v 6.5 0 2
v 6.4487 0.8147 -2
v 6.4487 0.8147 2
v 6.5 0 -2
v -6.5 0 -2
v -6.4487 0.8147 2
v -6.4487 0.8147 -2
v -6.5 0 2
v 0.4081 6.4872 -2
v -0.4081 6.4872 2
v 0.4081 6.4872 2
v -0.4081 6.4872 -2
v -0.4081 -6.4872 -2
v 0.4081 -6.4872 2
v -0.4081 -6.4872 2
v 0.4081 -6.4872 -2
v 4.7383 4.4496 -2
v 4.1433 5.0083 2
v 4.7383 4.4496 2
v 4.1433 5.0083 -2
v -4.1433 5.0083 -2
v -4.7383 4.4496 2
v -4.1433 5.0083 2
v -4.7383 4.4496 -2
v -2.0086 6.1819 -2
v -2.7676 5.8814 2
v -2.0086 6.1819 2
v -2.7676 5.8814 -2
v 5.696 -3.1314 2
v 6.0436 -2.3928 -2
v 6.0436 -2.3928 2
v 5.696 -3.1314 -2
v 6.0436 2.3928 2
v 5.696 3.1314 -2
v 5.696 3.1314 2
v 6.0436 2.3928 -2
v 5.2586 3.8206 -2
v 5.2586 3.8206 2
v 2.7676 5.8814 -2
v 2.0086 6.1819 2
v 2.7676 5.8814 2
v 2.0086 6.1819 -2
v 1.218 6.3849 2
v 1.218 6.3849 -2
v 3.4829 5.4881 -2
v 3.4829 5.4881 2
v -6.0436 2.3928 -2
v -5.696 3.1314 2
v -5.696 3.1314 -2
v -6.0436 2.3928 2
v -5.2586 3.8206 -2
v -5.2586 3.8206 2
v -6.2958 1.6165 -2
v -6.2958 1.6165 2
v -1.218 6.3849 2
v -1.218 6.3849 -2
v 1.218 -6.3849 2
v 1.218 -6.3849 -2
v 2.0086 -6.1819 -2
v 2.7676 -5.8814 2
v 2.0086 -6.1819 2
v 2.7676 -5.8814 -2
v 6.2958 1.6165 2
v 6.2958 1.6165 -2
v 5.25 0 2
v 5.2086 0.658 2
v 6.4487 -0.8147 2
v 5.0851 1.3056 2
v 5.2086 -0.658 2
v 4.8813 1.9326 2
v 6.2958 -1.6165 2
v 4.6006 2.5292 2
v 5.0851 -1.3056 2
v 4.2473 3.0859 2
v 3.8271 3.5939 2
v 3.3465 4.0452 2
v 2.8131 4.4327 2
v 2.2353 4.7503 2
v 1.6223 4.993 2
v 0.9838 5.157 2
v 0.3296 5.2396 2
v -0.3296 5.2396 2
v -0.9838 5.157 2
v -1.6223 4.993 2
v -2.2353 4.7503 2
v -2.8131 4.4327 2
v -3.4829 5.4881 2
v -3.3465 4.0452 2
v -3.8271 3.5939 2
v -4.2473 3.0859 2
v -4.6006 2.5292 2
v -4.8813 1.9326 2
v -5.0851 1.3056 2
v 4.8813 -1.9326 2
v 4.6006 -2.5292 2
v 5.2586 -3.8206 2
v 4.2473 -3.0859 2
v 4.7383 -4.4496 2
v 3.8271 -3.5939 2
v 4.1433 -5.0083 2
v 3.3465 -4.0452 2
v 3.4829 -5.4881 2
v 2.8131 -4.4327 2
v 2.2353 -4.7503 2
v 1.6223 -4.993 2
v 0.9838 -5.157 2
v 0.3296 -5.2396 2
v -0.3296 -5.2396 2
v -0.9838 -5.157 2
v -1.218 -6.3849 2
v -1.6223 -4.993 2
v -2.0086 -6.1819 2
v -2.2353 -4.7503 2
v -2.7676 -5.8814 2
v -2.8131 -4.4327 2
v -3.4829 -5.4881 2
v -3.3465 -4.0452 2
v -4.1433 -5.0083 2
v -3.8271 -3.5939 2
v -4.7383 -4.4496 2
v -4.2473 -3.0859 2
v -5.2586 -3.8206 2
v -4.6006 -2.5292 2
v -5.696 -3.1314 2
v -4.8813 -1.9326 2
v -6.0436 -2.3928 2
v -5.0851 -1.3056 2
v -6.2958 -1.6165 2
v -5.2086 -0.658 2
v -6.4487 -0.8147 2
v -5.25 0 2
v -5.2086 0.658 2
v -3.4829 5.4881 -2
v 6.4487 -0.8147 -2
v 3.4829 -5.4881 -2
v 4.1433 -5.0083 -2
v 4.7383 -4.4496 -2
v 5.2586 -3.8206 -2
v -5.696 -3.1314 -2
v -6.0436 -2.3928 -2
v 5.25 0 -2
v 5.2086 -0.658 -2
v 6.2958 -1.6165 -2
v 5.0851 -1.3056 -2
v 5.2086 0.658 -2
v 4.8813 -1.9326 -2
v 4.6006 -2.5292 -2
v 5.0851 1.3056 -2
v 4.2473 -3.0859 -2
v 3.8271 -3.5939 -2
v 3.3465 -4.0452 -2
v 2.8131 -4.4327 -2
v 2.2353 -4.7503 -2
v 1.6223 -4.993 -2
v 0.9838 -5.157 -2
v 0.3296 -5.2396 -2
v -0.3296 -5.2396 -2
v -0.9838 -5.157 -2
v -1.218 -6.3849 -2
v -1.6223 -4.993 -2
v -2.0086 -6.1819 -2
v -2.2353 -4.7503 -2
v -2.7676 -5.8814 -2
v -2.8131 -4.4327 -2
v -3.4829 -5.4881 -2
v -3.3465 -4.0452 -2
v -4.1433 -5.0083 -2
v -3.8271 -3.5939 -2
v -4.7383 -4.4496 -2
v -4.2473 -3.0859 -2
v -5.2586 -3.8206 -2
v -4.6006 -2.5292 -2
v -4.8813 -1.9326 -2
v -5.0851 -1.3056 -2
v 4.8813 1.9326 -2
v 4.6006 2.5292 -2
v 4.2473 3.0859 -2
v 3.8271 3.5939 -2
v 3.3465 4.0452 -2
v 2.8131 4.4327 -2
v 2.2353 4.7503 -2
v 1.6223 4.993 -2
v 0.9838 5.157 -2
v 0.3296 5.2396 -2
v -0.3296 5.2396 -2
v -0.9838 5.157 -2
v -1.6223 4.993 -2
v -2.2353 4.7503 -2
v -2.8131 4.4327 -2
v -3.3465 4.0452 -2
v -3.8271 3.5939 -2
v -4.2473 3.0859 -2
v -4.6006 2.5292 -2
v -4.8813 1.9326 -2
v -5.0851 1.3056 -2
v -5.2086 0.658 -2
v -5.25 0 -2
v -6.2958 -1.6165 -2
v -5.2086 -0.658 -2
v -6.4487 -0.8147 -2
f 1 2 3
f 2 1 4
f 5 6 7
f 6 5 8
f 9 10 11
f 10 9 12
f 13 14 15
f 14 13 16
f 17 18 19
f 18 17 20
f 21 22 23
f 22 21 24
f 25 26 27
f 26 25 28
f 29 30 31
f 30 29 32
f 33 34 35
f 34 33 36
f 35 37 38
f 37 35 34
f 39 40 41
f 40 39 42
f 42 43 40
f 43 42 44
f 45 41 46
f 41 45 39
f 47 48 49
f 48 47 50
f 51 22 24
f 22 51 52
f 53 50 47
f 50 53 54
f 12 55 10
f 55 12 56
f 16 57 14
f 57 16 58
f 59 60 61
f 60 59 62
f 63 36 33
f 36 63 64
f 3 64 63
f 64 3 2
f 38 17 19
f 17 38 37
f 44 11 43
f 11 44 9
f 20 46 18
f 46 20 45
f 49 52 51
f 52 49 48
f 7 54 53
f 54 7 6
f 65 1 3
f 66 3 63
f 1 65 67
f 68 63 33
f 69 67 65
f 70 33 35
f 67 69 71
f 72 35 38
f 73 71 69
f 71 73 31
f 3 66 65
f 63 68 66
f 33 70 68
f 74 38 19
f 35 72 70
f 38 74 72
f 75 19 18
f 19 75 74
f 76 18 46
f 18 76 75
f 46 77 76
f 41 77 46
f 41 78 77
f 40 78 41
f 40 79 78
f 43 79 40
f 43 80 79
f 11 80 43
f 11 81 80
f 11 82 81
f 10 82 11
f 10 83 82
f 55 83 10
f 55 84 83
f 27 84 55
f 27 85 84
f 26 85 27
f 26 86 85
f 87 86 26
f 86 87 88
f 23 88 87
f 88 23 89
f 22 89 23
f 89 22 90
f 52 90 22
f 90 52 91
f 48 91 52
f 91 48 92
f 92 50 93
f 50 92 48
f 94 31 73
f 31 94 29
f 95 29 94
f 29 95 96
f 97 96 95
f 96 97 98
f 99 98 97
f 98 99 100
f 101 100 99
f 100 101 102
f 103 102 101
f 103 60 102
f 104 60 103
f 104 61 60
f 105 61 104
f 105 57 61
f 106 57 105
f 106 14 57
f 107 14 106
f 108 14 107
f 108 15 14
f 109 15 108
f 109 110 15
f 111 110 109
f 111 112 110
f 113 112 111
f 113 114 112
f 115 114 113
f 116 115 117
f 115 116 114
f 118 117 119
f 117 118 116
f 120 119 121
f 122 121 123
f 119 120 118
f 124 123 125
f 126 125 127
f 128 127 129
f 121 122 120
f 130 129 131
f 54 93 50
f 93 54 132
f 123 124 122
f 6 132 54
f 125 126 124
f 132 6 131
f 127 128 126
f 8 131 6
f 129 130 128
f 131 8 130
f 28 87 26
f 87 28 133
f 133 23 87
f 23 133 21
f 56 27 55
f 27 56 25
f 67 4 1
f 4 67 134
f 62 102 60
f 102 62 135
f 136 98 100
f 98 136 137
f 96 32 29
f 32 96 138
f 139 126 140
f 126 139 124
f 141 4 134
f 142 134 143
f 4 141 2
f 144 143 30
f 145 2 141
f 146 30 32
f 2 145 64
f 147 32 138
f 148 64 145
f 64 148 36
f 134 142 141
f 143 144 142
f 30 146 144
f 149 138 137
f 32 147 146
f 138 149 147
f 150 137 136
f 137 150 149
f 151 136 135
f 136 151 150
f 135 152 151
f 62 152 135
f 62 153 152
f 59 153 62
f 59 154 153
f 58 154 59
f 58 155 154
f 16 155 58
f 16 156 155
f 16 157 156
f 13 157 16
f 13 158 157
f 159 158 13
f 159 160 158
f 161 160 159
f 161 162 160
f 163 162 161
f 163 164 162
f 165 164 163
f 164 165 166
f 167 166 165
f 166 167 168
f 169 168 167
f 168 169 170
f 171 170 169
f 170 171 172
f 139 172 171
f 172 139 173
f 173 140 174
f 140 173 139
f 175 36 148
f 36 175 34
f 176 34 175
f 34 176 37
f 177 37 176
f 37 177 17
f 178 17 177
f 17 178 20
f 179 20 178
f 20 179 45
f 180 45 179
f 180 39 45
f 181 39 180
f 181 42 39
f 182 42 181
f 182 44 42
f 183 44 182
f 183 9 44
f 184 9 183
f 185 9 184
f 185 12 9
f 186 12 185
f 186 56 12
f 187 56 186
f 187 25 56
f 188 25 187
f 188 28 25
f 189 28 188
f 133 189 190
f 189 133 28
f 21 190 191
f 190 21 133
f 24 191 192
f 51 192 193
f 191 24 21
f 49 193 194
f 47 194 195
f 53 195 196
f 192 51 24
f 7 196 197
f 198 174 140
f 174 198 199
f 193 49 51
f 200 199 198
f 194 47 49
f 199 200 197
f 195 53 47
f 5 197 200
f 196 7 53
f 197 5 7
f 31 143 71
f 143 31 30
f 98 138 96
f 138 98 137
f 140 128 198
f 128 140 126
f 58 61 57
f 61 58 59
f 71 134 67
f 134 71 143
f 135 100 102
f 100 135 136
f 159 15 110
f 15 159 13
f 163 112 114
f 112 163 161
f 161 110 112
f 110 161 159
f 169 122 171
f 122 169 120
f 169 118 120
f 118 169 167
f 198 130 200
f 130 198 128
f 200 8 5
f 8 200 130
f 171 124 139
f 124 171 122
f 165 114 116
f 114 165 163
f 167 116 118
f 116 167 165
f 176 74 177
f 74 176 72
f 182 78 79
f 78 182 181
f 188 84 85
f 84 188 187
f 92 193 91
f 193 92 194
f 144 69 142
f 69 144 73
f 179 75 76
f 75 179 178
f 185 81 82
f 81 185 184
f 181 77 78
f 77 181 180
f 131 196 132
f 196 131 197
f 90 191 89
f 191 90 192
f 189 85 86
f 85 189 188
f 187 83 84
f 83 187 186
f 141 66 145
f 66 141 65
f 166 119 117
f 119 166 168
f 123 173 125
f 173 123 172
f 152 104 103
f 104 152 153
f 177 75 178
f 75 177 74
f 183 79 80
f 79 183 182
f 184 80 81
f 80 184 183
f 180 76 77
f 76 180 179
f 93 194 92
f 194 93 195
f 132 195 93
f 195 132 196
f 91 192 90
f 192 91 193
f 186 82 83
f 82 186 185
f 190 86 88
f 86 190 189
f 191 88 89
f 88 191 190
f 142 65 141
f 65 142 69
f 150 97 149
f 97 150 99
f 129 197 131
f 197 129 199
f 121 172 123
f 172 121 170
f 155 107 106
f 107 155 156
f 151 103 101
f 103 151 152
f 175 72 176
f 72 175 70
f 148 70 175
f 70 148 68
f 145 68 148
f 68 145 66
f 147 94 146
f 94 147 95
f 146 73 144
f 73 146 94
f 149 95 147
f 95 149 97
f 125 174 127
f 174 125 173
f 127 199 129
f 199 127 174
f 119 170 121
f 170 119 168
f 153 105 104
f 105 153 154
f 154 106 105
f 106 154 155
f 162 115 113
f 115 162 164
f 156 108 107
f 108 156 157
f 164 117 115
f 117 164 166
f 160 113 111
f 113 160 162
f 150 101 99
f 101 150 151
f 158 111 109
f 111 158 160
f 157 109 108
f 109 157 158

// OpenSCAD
$fn = 50;


difference() {
	union() {
		translate(v = [0, 0, -2.0000000000]) {
			cylinder(h = 4, r = 6.5000000000);
		}
	}
	union() {
		translate(v = [0, 0, -100.0000000000]) {
			cylinder(h = 200, r = 5.2500000000);
		}
	}
}
